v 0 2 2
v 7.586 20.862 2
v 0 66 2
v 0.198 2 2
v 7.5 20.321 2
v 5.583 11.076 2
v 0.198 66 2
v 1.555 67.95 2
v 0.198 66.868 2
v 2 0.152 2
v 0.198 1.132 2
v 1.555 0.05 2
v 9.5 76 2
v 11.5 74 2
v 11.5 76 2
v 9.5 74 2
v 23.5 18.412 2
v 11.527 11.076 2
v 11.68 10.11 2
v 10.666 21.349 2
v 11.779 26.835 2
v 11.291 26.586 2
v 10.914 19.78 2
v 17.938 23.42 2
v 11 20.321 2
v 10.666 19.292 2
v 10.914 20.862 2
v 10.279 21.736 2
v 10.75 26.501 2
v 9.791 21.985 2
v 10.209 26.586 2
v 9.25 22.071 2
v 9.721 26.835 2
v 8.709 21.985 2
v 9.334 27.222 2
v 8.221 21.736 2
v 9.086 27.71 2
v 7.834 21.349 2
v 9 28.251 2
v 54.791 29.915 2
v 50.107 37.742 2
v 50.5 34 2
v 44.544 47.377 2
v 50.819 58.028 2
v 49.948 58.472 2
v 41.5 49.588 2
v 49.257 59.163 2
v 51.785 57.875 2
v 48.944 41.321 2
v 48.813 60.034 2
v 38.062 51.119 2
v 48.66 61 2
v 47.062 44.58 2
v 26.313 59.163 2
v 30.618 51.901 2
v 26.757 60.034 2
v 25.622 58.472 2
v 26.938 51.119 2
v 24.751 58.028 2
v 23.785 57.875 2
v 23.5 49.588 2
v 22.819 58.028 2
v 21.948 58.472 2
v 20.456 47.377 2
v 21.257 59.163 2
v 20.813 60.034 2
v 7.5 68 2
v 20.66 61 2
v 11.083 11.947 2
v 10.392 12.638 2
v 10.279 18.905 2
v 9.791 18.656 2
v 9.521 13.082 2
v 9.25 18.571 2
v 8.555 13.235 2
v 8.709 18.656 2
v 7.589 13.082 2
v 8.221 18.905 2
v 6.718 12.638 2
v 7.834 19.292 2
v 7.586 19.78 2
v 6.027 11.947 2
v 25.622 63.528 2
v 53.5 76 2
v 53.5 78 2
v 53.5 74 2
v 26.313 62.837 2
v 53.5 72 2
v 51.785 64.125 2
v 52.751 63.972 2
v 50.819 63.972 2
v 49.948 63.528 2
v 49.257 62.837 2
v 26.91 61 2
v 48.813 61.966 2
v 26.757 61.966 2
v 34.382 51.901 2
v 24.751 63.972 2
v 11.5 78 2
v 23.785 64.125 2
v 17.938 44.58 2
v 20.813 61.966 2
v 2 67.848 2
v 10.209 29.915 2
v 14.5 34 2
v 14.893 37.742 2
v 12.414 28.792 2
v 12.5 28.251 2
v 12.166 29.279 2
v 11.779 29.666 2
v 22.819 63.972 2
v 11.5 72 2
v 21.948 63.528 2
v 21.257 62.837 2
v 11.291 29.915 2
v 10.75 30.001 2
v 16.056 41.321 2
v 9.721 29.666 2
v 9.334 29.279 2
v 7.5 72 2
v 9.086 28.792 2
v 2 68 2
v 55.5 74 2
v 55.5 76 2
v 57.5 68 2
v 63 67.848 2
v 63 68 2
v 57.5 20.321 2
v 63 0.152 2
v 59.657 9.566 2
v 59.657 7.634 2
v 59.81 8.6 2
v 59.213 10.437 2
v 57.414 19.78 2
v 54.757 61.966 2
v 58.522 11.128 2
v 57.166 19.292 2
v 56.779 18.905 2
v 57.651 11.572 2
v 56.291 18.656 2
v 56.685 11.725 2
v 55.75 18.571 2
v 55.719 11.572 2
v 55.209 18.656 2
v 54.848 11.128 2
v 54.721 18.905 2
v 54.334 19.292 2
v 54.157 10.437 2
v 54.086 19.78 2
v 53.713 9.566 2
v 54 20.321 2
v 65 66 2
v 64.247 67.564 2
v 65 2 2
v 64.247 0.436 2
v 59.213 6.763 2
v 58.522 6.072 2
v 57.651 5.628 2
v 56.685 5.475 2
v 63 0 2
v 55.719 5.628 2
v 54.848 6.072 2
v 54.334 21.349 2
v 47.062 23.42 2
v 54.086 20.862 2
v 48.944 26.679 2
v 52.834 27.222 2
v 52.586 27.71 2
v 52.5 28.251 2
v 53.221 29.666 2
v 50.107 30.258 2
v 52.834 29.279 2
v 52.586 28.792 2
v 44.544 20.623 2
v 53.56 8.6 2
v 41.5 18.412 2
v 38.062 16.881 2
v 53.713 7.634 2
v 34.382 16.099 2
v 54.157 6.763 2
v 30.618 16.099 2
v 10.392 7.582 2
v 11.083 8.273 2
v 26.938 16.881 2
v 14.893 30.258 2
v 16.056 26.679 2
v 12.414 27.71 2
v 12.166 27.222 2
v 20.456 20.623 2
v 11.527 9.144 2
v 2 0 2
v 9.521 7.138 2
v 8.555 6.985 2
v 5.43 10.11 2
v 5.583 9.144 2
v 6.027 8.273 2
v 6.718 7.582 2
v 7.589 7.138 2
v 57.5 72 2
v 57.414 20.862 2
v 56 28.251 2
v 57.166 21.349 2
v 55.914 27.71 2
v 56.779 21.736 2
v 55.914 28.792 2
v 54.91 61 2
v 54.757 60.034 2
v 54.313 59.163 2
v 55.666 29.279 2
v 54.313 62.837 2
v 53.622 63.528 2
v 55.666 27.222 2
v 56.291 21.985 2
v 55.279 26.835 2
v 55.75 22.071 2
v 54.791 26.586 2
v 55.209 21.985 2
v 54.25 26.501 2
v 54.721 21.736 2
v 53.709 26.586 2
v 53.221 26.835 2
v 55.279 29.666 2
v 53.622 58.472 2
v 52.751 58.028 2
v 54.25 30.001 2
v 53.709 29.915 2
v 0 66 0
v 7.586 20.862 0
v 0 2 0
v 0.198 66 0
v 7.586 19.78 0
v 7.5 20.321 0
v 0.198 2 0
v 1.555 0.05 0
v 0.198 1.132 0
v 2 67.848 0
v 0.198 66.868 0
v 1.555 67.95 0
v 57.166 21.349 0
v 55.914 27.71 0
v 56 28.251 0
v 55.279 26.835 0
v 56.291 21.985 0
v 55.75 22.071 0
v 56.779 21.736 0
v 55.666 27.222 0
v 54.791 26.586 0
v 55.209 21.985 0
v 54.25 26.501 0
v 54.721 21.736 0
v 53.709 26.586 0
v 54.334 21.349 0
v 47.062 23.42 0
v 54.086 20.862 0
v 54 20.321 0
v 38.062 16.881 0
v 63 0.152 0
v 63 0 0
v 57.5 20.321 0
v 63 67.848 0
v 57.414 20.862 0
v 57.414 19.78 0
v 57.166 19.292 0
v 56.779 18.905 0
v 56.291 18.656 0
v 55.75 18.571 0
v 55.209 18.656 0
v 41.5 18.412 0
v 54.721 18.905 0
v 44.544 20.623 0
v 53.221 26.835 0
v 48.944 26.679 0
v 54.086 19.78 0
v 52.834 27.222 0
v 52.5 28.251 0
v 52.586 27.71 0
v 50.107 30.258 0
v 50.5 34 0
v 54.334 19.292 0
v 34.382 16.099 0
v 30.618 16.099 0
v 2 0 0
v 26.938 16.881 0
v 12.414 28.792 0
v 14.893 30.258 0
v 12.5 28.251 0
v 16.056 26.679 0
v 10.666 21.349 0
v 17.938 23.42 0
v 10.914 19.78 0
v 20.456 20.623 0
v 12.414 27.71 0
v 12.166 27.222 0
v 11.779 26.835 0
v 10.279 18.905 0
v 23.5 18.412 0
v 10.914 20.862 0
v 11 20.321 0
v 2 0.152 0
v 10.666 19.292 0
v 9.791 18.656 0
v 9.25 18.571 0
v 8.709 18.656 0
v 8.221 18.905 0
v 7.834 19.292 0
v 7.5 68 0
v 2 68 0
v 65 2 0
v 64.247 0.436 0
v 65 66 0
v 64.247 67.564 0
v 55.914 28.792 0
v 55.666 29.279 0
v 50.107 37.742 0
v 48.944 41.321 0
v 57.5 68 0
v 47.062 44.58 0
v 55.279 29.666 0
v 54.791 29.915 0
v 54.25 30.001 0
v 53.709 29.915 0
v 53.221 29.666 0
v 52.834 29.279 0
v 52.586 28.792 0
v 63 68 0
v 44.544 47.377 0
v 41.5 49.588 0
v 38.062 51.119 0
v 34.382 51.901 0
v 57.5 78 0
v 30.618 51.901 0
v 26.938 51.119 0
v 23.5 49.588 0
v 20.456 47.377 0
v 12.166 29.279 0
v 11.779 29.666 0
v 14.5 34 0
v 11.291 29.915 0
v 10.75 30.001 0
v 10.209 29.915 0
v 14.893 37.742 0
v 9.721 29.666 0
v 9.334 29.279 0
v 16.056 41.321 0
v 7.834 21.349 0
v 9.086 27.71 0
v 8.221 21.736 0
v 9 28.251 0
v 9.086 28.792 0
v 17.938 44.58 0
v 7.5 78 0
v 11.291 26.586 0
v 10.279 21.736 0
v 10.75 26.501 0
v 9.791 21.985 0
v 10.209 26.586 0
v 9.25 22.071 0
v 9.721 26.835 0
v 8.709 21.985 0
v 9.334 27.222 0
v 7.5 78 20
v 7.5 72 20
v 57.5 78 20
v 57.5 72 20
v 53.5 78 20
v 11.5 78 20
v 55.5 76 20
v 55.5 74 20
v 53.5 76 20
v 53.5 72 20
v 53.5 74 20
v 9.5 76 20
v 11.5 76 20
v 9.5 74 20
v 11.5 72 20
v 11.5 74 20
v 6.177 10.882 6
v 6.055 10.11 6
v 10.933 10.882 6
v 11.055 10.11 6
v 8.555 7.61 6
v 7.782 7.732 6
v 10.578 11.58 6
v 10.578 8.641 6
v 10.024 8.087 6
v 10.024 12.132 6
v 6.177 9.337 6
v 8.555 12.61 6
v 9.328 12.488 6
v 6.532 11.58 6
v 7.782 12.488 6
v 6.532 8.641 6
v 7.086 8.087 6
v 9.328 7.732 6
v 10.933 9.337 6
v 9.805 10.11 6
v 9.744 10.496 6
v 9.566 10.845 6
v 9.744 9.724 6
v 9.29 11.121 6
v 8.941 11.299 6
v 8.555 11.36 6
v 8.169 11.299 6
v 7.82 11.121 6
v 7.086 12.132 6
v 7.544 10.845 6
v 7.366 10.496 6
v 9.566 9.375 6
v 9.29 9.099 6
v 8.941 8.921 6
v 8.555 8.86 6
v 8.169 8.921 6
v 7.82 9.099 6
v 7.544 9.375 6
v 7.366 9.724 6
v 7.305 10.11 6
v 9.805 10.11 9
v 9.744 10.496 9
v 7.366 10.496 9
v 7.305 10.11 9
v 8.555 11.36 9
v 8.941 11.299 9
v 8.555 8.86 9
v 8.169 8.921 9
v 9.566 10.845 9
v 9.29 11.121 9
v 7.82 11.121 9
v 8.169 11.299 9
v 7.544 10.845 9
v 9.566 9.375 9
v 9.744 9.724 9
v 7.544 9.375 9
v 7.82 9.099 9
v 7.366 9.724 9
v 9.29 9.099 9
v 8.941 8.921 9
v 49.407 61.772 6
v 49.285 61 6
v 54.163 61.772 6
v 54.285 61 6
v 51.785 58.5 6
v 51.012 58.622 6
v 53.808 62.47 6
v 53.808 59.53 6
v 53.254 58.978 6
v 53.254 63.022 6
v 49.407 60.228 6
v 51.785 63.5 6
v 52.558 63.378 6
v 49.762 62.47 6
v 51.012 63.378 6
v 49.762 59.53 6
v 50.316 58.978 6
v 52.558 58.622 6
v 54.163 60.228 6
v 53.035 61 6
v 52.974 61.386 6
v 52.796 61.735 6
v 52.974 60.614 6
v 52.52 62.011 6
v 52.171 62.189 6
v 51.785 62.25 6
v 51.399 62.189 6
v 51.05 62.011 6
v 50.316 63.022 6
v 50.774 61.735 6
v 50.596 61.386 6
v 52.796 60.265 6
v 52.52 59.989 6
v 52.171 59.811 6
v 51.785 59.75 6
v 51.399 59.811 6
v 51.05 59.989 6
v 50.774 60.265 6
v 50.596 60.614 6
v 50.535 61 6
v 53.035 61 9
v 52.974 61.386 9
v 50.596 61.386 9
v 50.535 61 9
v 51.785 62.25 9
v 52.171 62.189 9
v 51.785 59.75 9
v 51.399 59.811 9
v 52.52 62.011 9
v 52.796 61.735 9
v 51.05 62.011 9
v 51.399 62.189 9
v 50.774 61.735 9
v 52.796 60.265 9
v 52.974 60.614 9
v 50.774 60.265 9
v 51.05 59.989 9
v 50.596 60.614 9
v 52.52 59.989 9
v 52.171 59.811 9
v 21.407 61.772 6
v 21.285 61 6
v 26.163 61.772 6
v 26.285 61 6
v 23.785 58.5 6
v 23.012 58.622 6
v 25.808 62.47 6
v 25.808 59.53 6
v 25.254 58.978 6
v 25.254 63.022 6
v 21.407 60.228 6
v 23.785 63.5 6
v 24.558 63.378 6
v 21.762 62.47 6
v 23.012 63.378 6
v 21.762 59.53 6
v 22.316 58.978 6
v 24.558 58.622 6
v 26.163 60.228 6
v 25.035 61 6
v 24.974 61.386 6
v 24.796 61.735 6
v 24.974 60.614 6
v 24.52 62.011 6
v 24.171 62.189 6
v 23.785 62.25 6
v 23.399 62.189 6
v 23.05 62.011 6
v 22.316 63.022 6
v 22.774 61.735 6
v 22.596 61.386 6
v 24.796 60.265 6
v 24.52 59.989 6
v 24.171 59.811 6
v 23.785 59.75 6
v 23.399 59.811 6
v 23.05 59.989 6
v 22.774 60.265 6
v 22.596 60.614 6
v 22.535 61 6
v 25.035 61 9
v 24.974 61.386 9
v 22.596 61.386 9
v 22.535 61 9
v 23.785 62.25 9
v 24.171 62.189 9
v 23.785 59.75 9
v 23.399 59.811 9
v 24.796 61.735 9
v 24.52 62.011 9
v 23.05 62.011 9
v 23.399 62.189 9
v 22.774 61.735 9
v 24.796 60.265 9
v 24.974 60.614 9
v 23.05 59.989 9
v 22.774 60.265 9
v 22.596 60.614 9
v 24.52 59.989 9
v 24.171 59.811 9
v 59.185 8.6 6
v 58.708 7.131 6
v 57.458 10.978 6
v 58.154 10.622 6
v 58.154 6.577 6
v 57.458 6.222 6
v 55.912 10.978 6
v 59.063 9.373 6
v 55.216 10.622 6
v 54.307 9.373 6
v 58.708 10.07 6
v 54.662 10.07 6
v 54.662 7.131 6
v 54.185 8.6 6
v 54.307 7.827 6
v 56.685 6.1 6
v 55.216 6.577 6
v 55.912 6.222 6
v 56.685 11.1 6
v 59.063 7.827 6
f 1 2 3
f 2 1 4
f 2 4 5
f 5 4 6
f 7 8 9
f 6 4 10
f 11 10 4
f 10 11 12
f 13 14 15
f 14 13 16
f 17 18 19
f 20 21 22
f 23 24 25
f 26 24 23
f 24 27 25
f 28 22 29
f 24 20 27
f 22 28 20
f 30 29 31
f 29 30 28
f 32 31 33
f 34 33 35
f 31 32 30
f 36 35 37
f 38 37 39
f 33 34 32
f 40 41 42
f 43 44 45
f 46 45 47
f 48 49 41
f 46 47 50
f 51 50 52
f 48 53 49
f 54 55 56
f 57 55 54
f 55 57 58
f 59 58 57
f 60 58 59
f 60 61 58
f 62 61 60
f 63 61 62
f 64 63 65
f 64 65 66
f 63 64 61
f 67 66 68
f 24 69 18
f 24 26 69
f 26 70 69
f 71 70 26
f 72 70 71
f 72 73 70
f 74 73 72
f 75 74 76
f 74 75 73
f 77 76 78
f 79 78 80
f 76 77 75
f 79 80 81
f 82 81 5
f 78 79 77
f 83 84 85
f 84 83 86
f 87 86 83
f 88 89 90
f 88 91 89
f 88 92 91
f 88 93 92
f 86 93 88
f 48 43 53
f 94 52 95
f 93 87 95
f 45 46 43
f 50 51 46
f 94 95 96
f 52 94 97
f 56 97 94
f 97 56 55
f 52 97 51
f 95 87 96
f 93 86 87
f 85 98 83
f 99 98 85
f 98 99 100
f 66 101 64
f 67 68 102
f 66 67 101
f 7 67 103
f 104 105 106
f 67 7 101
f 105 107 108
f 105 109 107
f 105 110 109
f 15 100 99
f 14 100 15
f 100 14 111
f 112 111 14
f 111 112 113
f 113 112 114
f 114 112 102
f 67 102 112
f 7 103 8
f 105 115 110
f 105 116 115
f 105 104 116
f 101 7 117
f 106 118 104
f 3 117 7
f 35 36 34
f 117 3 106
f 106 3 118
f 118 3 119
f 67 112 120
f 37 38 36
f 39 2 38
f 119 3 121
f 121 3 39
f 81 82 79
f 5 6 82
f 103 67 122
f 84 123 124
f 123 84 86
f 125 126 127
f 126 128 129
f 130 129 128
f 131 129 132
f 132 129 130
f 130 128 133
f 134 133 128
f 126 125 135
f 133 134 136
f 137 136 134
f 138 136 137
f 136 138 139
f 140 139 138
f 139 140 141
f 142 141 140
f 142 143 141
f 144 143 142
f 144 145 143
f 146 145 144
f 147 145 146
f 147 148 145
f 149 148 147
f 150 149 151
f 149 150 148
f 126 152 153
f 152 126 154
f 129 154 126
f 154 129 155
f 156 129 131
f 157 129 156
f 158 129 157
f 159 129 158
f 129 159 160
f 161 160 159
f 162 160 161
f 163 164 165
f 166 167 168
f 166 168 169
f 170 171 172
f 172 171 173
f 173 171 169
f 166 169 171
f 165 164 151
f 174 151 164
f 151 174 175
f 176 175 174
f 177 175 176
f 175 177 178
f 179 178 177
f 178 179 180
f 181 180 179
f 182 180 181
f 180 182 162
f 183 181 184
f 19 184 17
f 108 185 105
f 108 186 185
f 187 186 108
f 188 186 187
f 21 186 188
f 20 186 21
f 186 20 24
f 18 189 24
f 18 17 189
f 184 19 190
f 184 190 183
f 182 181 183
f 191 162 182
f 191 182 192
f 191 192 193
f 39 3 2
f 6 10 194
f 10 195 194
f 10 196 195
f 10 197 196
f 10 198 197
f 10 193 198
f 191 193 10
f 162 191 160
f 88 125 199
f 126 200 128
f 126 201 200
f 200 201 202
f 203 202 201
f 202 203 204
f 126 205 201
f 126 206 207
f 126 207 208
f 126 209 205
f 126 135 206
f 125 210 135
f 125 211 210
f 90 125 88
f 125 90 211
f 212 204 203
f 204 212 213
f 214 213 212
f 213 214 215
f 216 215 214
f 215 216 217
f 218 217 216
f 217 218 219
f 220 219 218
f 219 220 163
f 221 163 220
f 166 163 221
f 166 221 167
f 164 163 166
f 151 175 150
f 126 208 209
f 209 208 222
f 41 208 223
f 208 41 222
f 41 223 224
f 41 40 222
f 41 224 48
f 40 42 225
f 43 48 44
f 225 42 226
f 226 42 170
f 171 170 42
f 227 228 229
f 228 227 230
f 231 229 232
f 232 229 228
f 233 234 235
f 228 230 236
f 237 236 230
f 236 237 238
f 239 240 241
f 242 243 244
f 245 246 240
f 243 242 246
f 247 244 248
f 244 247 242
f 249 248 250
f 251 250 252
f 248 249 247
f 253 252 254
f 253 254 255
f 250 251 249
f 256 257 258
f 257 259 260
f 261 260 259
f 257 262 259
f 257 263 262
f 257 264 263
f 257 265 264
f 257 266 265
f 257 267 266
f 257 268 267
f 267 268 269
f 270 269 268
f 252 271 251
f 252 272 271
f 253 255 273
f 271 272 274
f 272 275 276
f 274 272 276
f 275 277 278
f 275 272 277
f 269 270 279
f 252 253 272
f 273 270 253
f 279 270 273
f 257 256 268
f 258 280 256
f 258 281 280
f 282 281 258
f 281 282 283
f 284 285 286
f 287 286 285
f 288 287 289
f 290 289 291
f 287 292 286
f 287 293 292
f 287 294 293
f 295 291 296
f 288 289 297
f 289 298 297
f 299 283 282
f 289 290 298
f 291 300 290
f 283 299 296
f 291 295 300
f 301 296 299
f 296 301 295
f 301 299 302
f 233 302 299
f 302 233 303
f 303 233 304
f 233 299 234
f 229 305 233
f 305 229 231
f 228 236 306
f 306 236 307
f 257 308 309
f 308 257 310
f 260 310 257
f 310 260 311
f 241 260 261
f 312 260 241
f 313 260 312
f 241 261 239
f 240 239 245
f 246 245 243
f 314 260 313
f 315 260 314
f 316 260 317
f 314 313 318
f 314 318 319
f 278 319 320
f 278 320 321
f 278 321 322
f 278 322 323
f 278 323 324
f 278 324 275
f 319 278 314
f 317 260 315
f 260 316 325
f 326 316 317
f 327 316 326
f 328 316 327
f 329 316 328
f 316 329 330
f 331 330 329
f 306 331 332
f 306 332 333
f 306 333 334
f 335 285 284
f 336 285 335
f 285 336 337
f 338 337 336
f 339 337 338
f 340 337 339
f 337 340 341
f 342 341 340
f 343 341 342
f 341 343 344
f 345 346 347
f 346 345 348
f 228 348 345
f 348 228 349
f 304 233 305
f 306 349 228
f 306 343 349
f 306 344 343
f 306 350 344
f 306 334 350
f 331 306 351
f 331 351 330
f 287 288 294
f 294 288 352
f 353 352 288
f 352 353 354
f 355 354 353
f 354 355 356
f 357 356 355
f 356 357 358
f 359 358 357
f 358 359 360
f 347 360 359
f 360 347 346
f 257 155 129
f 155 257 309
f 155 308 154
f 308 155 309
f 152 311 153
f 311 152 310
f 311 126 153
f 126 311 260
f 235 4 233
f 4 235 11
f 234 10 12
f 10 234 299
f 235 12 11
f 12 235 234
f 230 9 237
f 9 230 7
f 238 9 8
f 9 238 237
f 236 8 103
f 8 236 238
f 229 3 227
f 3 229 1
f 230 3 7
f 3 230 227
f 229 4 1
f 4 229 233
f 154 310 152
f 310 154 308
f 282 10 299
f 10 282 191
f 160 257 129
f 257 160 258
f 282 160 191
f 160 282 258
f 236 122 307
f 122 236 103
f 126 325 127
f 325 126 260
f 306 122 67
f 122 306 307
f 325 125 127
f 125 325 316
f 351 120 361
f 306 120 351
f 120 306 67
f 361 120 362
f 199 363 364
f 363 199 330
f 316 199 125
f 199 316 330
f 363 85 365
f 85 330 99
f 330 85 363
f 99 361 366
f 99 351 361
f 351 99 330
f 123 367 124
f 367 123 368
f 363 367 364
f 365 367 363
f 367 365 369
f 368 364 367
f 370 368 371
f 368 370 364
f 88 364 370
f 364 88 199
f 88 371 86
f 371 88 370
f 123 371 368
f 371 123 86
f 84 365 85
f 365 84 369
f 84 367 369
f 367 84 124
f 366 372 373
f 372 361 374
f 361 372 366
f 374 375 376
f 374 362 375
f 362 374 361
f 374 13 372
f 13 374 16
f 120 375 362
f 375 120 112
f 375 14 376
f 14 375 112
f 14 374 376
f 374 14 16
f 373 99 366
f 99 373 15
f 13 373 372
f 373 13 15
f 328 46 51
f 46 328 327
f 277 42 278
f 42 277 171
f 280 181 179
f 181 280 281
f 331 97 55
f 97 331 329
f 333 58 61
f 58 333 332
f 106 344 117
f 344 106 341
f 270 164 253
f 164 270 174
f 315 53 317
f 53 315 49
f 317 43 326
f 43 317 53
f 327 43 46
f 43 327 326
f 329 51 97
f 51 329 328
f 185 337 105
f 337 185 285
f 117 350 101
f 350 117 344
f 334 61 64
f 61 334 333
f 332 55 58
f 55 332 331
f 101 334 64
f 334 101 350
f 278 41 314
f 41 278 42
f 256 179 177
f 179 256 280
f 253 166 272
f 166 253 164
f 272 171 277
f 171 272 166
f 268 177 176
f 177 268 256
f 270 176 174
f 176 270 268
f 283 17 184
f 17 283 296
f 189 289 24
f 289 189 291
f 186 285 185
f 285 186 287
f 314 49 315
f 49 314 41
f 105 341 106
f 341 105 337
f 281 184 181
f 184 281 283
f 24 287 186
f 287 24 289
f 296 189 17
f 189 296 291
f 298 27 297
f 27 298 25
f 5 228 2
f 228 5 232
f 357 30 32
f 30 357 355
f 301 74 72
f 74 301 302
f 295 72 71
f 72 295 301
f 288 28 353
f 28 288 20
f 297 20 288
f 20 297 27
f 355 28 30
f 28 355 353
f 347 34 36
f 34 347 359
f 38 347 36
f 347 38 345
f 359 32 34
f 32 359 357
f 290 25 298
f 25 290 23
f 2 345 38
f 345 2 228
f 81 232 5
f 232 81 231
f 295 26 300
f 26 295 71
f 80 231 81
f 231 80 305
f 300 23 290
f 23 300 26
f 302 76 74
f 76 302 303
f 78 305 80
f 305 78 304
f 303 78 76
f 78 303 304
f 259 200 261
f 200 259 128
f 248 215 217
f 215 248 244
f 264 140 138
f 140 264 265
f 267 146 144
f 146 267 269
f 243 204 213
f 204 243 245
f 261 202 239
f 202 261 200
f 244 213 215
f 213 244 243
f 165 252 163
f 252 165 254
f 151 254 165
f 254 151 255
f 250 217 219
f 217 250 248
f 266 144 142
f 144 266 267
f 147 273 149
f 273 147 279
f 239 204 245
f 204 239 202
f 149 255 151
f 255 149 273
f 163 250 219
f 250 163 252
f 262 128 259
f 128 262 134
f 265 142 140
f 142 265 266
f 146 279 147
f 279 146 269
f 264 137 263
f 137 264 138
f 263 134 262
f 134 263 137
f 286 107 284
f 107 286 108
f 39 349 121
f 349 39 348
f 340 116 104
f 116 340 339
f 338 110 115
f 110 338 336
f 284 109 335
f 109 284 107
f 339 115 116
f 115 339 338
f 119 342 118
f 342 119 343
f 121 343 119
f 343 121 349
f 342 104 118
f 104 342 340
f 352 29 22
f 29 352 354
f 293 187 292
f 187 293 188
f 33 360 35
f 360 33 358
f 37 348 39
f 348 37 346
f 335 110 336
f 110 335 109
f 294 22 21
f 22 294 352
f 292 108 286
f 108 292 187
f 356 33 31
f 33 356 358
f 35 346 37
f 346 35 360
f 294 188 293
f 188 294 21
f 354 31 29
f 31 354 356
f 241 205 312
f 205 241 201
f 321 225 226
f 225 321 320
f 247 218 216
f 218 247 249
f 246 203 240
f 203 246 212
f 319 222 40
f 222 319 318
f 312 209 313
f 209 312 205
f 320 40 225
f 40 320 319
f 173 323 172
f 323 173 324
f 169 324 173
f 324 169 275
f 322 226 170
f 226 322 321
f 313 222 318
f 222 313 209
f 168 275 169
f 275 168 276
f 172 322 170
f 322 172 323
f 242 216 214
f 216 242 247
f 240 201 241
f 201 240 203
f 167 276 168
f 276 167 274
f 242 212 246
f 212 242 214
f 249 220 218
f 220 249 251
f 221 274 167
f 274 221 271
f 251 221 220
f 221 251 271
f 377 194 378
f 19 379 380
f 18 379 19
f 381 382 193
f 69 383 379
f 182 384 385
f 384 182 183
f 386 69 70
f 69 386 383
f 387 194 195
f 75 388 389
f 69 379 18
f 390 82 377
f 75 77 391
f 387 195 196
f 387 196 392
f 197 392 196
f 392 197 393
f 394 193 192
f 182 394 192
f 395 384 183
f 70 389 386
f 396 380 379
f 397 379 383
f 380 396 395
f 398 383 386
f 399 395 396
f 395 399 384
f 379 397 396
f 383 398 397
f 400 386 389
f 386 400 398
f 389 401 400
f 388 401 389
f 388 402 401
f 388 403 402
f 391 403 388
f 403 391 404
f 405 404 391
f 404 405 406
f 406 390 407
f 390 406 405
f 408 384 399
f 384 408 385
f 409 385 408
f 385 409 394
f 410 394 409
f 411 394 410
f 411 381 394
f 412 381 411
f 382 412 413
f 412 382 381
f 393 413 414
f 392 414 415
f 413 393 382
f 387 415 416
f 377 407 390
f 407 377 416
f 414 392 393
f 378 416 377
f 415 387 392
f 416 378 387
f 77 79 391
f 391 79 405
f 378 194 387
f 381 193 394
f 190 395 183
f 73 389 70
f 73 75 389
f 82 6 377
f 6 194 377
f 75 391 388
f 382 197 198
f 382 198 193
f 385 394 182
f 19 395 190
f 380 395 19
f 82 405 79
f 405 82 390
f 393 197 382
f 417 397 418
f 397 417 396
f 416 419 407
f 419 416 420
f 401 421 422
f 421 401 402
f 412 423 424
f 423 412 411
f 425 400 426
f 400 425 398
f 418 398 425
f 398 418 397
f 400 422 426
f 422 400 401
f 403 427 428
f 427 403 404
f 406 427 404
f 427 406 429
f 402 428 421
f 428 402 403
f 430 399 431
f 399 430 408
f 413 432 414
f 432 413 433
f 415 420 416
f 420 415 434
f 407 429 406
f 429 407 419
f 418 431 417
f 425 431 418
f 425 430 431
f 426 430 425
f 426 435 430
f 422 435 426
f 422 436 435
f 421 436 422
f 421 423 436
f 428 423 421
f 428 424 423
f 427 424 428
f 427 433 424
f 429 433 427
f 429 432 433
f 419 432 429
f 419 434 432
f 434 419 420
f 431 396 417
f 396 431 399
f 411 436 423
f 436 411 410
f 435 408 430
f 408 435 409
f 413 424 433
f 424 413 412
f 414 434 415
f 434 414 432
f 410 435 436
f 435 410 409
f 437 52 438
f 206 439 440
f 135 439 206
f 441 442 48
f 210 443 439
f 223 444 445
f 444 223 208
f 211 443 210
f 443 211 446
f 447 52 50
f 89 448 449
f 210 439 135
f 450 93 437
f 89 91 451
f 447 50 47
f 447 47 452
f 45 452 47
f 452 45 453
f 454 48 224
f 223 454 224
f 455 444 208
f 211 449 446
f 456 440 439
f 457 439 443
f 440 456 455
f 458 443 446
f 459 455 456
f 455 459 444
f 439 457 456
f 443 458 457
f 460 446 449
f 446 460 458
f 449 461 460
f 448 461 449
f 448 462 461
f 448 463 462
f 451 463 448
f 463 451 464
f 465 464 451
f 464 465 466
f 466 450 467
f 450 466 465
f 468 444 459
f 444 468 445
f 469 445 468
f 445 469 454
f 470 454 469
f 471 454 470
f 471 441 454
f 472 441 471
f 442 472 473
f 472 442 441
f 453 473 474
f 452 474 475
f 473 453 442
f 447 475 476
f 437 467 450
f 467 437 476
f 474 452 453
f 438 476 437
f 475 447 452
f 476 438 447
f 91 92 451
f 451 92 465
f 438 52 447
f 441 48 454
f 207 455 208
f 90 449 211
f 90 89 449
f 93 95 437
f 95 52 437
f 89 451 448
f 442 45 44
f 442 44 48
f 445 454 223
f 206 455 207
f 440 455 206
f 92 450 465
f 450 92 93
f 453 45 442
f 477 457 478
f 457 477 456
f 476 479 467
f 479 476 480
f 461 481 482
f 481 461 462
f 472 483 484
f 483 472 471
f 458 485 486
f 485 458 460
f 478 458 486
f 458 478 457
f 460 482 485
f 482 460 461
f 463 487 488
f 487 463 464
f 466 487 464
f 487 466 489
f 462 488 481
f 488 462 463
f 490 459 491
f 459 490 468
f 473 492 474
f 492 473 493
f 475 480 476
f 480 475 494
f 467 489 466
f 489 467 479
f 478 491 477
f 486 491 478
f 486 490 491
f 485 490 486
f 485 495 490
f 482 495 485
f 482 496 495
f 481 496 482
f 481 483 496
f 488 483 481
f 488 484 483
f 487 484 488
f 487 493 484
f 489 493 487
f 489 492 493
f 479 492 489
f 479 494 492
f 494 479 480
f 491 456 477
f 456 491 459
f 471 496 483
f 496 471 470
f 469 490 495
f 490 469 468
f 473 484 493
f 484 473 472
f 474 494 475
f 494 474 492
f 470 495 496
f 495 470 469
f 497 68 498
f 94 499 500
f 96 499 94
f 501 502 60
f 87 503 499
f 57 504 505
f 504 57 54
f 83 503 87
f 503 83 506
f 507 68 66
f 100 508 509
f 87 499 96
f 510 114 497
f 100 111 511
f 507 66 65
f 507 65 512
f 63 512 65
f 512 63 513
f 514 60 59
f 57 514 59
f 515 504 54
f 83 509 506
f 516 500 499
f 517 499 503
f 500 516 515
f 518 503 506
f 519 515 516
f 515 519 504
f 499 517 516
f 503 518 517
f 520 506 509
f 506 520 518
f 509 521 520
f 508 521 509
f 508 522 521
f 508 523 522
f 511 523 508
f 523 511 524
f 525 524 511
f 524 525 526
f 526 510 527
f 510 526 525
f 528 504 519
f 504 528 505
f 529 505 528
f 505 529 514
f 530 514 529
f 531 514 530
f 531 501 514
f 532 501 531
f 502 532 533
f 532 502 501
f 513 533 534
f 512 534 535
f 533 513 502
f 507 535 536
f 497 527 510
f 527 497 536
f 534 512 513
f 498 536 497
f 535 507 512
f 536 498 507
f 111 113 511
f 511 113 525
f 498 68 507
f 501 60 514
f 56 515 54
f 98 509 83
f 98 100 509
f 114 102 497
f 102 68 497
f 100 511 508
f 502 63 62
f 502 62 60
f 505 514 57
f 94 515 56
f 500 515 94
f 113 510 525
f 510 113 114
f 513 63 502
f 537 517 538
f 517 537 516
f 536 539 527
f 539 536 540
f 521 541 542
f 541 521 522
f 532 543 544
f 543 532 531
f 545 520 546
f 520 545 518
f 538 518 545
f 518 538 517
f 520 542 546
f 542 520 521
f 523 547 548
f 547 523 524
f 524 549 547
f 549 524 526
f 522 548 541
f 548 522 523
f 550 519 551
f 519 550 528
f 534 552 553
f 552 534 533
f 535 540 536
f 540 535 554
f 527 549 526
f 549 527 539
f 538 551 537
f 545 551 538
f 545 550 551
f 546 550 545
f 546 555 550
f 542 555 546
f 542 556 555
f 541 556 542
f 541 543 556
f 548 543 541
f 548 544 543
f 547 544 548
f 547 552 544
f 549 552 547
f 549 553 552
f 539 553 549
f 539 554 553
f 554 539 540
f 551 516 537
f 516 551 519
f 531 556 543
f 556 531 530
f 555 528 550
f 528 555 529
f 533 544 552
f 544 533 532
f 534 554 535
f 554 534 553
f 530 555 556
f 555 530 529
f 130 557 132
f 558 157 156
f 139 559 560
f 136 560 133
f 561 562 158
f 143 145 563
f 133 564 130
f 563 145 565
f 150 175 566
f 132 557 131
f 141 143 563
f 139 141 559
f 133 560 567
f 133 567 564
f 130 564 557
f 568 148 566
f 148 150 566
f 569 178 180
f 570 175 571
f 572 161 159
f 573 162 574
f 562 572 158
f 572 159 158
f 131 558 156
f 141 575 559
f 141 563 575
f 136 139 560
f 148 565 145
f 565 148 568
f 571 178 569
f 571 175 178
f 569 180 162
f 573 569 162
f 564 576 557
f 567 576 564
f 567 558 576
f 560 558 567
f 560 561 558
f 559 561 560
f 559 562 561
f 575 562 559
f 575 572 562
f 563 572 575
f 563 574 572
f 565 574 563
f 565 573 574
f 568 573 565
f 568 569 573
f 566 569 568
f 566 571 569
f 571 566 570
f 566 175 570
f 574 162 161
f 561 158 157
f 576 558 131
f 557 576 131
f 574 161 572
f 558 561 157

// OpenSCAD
// stalak za arduino uno i ultrazvucni senzor na robotskim kolicima

flatw=65;
flatl=68;
flath=2;
bevelradius=2;

unow=53.53;
unol=68.72;

hcw=46;
hch=1.7;
holed=3.5;

pind=2.5;
pinh=3;

union(){
    difference(){
        podloga(flatw,flatl,flath,bevelradius);
        rupe([flatw/2,flatl/2.8,flath/2],flath,holed/2);
    }
    pinovi(4,pind/2,[flatw/2,-5,flath],pinh);
}

// povrsina ispod uno plocice
module podloga(flatw,flatl,flath,bevelradius){

    inw=flatw-2*bevelradius;
    inl=flatl-2*bevelradius;

    translate([bevelradius,bevelradius,0]){
        difference(){
            union(){
                cube([inw,inl,flath],false);
                cylinder(flath,bevelradius,bevelradius,false);
                translate([inw,0,0]){
                    cylinder(flath,bevelradius,bevelradius,false);
                    translate([0,inl,0]){
                        cylinder(flath,bevelradius,bevelradius,false);
                    }
                }
                translate([0,inl,0]){cylinder(flath,bevelradius,bevelradius,false);}
                
                translate([-bevelradius,0,0]){cube([bevelradius,inl,flath],false);}
                translate([inw,0,0]){cube([bevelradius,inl,flath],false);}
                translate([0,-bevelradius,0]){cube([inw,bevelradius,flath],false);}
                translate([0,inl,0]){cube([inw,bevelradius,flath],false);}
                
                translate([inw/2-hcw/2-2,inl+bevelradius,0]){cube([hcw+4,10,flath],false);}
                translate([inw/2+hcw/2,inl+6,0]){cube([2,6,20]);}
                translate([inw/2+hcw/2-2,inl+6,0]){cube([2,2,20]);}
                translate([inw/2+hcw/2-2,inl+10,0]){cube([2,2,20]);}
                translate([inw/2-2-hcw/2,inl+6,0]){cube([2,6,20]);}
                translate([inw/2-hcw/2,inl+6,0]){cube([2,2,20]);}
                translate([inw/2-hcw/2,inl+10,0]){cube([2,2,20]);}
            }
            translate([inw/2,inl/2,flath/2]){cylinder(flath+0.2,18,18,true);}
        }
    }
}

module pinovi(lift,pinr,off,pinh){
    
    startpinr=2.5*pinr;
    endpinr=2*pinr;
    pin1=[50.95,13.6,0]+off;      //uz power
    pin2=[2.82,15.11,0]+off;    //uz usb
    pin3=[46.05,66,0]+off;      // uz procesor
    pin4=[18.05,66,0]+off;
    
    translate([-unow/2,0,0]){
        translate(pin1){
            union(){
                cylinder(lift,startpinr,endpinr,false,$fn=20);
                //cylinder(lift+pinh,pinr,pinr,false,$fn=20);  //otkomentirati za uno
            }
        }
        translate(pin2){
            union(){
                cylinder(lift,startpinr,endpinr,false,$fn=20);
                cylinder(lift+pinh,pinr,pinr,false,$fn=20);
            }
        }
        translate(pin3){
            union(){
                cylinder(lift,startpinr,endpinr,false,$fn=20);
                cylinder(lift+pinh,pinr,pinr,false,$fn=20);
            }
        }
        translate(pin4){
            union(){
                cylinder(lift,startpinr,endpinr,false,$fn=20);
                cylinder(lift+pinh,pinr,pinr,false,$fn=20);
            }
        }
    }
}

module rupe(off,h,r){
    
    wsplit1=46.5;
    wsplit2=43.5;
    lsplit=7.93;
    
    translate(off){
        translate([-wsplit1/2,-lsplit/2,0]){cylinder(h+0.2,r,r,true,$fn=20);}
        translate([wsplit1/2,-lsplit/2,0]){cylinder(h+0.2,r,r,true,$fn=20);}
        translate([-wsplit2/2,lsplit/2,0]){cylinder(h+0.2,r,r,true,$fn=20);}
        translate([wsplit2/2,lsplit/2,0]){cylinder(h+0.2,r,r,true,$fn=20);}
    }
}
